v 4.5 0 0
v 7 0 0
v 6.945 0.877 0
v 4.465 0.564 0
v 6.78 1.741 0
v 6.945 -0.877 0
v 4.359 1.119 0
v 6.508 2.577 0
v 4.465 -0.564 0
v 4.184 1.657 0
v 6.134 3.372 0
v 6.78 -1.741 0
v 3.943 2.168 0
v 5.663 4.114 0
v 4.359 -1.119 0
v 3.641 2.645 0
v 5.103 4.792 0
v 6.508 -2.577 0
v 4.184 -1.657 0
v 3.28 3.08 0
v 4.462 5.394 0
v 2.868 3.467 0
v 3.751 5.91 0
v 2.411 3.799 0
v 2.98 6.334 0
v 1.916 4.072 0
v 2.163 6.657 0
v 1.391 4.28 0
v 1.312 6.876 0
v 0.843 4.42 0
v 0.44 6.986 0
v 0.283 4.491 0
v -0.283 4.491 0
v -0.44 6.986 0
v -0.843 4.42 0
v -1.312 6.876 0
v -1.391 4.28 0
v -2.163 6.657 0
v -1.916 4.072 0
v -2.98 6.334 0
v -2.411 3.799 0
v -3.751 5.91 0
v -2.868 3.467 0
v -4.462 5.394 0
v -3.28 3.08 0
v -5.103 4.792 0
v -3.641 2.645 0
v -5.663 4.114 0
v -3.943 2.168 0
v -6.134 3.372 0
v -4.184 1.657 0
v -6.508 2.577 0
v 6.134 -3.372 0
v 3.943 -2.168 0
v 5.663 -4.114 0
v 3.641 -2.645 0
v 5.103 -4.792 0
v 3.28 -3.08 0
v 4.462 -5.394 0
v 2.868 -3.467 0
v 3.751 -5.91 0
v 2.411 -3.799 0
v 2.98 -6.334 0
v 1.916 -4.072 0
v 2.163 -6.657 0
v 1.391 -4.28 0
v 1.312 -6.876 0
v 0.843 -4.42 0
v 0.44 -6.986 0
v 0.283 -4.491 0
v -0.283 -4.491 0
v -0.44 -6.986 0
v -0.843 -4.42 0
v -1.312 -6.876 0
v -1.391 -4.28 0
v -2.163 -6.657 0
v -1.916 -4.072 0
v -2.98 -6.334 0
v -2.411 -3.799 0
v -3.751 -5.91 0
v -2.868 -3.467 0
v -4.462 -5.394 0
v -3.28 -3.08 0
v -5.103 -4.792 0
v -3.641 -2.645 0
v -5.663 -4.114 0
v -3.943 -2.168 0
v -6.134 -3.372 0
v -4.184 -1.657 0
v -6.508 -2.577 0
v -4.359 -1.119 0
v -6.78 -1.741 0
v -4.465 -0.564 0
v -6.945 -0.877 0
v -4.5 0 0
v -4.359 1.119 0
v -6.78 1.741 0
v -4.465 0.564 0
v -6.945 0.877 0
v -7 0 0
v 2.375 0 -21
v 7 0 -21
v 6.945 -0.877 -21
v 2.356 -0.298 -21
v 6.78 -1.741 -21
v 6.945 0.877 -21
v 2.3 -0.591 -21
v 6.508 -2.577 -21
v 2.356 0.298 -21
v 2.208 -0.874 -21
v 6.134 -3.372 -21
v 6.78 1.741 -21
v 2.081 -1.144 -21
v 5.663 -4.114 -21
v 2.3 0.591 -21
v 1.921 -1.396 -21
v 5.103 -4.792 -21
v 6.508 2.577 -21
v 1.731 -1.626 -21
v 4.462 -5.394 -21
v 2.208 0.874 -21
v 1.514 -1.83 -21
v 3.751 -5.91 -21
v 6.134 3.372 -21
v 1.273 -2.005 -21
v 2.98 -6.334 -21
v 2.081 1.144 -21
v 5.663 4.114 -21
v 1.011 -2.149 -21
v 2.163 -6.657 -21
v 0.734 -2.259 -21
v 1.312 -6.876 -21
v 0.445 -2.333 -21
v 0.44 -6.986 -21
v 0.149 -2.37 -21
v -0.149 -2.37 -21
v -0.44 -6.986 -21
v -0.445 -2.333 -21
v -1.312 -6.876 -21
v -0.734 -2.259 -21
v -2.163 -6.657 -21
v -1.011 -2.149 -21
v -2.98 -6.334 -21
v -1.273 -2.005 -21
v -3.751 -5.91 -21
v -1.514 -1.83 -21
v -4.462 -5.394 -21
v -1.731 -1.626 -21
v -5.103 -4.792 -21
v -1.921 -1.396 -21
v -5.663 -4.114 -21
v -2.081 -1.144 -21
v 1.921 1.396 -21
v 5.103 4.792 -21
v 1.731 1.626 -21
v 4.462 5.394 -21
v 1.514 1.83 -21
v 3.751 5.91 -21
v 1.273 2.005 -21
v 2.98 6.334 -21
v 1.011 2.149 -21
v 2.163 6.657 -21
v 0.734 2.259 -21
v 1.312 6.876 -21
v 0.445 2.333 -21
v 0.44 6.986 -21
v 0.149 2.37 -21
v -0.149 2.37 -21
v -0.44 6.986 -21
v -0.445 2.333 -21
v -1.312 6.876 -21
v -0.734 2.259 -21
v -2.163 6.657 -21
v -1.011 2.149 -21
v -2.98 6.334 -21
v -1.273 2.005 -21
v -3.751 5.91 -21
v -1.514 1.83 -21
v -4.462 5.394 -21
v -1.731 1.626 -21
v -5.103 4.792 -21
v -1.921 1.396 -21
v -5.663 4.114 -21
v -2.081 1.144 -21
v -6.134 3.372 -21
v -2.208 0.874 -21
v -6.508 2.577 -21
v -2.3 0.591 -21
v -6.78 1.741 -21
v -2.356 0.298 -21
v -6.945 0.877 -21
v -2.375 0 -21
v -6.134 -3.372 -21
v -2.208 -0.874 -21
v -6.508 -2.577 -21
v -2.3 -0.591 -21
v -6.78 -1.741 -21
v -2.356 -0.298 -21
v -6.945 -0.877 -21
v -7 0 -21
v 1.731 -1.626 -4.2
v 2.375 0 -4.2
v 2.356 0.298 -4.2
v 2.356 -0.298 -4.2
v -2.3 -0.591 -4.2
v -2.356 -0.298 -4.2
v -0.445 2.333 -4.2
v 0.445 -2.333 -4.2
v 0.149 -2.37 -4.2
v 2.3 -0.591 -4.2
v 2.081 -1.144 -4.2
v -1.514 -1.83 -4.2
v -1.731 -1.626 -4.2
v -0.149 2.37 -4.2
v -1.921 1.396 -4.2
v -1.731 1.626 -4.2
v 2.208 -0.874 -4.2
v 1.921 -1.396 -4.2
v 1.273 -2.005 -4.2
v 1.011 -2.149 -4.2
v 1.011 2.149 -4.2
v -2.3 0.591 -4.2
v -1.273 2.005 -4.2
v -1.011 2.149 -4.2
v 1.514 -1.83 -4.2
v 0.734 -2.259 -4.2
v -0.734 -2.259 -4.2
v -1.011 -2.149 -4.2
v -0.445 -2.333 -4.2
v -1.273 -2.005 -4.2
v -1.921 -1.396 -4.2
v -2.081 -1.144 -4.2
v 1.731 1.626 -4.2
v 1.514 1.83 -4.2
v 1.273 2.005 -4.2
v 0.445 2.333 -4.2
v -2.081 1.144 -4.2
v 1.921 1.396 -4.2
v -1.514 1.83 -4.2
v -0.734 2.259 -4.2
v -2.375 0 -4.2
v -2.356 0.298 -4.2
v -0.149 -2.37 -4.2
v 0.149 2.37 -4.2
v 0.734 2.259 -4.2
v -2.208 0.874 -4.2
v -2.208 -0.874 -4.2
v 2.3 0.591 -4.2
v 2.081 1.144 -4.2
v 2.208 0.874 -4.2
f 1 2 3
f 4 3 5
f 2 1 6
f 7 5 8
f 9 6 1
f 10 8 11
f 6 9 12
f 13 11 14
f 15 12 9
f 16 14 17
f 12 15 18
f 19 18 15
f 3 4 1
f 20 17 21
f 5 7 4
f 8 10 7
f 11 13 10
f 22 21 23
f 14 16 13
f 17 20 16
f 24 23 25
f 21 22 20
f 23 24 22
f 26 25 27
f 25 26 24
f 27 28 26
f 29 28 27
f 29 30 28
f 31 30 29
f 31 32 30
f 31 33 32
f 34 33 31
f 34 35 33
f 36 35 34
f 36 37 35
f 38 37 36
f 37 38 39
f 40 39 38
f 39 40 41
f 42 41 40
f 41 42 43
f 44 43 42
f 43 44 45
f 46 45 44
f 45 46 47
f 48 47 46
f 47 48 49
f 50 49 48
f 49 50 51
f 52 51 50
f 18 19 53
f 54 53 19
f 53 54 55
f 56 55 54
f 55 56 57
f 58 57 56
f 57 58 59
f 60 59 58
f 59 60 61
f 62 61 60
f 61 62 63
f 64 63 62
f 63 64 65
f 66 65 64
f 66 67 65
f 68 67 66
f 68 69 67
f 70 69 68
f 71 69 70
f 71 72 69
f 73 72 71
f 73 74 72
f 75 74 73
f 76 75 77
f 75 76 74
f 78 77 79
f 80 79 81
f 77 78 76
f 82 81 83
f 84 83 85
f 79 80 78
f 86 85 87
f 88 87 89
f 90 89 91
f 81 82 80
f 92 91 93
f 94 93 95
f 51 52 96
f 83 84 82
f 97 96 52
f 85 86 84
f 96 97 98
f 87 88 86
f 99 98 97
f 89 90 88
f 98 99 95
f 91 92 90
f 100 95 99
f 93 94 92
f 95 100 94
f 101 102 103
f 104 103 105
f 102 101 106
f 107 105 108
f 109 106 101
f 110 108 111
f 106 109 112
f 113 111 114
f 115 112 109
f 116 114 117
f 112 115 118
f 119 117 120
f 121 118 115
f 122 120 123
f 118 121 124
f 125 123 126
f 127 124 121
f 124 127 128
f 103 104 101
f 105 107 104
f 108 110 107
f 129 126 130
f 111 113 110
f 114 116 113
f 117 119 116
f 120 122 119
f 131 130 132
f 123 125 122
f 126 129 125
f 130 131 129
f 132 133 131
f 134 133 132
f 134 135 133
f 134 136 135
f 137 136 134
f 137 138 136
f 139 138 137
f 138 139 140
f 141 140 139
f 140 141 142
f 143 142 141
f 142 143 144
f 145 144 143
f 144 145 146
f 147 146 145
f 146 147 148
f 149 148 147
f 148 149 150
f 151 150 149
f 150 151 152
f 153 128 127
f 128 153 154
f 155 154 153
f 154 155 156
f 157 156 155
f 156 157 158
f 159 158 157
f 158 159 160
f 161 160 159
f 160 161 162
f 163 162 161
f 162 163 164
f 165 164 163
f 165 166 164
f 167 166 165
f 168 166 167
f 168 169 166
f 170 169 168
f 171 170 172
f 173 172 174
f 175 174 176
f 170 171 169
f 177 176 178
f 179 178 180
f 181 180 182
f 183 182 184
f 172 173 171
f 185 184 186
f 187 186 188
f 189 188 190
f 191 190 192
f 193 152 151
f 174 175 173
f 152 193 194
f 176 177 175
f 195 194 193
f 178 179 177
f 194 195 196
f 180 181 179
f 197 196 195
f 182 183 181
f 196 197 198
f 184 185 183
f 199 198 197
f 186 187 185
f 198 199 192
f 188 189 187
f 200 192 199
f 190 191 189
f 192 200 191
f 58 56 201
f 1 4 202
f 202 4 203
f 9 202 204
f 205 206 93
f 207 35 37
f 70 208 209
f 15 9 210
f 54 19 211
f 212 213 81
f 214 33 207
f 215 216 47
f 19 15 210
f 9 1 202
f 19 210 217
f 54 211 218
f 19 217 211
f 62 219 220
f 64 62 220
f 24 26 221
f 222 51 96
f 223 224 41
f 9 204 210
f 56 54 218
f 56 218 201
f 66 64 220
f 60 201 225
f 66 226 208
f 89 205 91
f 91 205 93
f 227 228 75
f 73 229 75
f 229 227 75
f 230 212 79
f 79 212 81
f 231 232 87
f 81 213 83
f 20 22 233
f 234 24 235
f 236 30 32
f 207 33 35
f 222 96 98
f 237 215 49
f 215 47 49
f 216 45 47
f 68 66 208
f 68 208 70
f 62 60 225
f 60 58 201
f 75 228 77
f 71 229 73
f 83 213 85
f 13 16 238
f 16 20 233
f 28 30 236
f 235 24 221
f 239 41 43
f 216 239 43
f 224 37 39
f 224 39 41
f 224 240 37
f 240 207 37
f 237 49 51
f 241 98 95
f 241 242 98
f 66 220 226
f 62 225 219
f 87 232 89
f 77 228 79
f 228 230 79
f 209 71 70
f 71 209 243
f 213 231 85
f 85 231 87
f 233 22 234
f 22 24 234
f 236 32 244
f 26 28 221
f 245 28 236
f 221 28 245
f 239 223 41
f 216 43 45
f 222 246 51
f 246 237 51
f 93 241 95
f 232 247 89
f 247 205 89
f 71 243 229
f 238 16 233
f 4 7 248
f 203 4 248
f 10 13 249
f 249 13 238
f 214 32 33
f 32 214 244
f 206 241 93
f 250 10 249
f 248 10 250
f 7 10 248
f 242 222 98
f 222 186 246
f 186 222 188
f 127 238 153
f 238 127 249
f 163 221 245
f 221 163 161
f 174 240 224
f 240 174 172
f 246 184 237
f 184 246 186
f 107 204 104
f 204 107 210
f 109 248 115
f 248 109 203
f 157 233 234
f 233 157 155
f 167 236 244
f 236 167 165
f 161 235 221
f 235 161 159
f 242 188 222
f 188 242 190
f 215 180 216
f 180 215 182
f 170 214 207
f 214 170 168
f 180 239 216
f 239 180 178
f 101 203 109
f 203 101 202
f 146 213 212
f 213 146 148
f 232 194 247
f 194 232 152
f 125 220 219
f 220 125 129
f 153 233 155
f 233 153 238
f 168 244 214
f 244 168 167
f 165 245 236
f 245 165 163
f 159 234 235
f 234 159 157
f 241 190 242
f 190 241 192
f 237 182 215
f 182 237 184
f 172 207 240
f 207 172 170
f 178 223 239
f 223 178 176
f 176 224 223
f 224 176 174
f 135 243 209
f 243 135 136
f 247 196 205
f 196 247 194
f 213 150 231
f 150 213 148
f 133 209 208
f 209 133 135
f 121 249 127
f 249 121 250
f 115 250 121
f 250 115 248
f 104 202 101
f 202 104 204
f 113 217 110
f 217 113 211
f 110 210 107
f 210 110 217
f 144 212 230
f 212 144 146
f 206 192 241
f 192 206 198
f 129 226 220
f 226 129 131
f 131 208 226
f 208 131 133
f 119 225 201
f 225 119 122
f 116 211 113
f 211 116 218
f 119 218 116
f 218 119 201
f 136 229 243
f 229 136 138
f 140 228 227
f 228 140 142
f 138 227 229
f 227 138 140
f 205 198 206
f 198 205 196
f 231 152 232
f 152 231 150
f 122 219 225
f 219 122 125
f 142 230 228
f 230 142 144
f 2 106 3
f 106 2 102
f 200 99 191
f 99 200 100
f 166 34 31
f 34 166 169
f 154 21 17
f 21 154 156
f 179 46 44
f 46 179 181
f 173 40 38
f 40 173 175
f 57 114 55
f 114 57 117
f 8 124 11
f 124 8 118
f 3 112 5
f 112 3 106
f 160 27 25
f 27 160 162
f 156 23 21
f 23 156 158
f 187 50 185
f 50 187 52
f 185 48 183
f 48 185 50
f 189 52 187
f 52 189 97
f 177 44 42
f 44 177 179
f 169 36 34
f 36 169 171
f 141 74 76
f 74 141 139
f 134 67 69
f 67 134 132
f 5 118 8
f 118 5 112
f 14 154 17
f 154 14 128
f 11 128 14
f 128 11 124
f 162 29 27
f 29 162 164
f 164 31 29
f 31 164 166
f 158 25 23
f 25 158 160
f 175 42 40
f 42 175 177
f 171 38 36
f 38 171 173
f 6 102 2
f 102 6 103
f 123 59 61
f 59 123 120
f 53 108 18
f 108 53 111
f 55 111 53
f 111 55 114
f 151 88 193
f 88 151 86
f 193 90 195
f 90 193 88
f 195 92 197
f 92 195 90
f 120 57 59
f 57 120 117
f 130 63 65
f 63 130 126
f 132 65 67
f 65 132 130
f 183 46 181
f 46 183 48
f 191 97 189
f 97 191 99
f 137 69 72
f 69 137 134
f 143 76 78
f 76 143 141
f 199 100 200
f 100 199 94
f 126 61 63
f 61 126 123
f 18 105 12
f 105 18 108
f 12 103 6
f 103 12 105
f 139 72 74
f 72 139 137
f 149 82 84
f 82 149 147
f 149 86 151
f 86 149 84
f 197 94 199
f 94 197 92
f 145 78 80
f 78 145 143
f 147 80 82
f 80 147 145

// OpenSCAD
$fn = 50;


difference() {
	union() {
		translate(v = [0, 0, -21.0000000000]) {
			cylinder(h = 21, r = 7.0000000000);
		}
		cylinder(h = 0, r = 16.0000000000);
	}
	union() {
		translate(v = [0, 0, 0]) {
			rotate(a = [0, 0, 0]) {
				difference() {
					union() {
						#translate(v = [0, 0, -21.0000000000]) {
							cylinder(h = 21, r = 2.2500000000);
						}
						#translate(v = [0, 0, -4.2000000000]) {
							cylinder(h = 4.2000000000, r1 = 2.3750000000, r2 = 4.5000000000);
						}
						#translate(v = [0, 0, -21.0000000000]) {
							cylinder(h = 21, r = 2.3750000000);
						}
						#translate(v = [0, 0, -21.0000000000]) {
							cylinder(h = 21, r = 2.2500000000);
						}
					}
					union();
				}
			}
		}
	}
}
